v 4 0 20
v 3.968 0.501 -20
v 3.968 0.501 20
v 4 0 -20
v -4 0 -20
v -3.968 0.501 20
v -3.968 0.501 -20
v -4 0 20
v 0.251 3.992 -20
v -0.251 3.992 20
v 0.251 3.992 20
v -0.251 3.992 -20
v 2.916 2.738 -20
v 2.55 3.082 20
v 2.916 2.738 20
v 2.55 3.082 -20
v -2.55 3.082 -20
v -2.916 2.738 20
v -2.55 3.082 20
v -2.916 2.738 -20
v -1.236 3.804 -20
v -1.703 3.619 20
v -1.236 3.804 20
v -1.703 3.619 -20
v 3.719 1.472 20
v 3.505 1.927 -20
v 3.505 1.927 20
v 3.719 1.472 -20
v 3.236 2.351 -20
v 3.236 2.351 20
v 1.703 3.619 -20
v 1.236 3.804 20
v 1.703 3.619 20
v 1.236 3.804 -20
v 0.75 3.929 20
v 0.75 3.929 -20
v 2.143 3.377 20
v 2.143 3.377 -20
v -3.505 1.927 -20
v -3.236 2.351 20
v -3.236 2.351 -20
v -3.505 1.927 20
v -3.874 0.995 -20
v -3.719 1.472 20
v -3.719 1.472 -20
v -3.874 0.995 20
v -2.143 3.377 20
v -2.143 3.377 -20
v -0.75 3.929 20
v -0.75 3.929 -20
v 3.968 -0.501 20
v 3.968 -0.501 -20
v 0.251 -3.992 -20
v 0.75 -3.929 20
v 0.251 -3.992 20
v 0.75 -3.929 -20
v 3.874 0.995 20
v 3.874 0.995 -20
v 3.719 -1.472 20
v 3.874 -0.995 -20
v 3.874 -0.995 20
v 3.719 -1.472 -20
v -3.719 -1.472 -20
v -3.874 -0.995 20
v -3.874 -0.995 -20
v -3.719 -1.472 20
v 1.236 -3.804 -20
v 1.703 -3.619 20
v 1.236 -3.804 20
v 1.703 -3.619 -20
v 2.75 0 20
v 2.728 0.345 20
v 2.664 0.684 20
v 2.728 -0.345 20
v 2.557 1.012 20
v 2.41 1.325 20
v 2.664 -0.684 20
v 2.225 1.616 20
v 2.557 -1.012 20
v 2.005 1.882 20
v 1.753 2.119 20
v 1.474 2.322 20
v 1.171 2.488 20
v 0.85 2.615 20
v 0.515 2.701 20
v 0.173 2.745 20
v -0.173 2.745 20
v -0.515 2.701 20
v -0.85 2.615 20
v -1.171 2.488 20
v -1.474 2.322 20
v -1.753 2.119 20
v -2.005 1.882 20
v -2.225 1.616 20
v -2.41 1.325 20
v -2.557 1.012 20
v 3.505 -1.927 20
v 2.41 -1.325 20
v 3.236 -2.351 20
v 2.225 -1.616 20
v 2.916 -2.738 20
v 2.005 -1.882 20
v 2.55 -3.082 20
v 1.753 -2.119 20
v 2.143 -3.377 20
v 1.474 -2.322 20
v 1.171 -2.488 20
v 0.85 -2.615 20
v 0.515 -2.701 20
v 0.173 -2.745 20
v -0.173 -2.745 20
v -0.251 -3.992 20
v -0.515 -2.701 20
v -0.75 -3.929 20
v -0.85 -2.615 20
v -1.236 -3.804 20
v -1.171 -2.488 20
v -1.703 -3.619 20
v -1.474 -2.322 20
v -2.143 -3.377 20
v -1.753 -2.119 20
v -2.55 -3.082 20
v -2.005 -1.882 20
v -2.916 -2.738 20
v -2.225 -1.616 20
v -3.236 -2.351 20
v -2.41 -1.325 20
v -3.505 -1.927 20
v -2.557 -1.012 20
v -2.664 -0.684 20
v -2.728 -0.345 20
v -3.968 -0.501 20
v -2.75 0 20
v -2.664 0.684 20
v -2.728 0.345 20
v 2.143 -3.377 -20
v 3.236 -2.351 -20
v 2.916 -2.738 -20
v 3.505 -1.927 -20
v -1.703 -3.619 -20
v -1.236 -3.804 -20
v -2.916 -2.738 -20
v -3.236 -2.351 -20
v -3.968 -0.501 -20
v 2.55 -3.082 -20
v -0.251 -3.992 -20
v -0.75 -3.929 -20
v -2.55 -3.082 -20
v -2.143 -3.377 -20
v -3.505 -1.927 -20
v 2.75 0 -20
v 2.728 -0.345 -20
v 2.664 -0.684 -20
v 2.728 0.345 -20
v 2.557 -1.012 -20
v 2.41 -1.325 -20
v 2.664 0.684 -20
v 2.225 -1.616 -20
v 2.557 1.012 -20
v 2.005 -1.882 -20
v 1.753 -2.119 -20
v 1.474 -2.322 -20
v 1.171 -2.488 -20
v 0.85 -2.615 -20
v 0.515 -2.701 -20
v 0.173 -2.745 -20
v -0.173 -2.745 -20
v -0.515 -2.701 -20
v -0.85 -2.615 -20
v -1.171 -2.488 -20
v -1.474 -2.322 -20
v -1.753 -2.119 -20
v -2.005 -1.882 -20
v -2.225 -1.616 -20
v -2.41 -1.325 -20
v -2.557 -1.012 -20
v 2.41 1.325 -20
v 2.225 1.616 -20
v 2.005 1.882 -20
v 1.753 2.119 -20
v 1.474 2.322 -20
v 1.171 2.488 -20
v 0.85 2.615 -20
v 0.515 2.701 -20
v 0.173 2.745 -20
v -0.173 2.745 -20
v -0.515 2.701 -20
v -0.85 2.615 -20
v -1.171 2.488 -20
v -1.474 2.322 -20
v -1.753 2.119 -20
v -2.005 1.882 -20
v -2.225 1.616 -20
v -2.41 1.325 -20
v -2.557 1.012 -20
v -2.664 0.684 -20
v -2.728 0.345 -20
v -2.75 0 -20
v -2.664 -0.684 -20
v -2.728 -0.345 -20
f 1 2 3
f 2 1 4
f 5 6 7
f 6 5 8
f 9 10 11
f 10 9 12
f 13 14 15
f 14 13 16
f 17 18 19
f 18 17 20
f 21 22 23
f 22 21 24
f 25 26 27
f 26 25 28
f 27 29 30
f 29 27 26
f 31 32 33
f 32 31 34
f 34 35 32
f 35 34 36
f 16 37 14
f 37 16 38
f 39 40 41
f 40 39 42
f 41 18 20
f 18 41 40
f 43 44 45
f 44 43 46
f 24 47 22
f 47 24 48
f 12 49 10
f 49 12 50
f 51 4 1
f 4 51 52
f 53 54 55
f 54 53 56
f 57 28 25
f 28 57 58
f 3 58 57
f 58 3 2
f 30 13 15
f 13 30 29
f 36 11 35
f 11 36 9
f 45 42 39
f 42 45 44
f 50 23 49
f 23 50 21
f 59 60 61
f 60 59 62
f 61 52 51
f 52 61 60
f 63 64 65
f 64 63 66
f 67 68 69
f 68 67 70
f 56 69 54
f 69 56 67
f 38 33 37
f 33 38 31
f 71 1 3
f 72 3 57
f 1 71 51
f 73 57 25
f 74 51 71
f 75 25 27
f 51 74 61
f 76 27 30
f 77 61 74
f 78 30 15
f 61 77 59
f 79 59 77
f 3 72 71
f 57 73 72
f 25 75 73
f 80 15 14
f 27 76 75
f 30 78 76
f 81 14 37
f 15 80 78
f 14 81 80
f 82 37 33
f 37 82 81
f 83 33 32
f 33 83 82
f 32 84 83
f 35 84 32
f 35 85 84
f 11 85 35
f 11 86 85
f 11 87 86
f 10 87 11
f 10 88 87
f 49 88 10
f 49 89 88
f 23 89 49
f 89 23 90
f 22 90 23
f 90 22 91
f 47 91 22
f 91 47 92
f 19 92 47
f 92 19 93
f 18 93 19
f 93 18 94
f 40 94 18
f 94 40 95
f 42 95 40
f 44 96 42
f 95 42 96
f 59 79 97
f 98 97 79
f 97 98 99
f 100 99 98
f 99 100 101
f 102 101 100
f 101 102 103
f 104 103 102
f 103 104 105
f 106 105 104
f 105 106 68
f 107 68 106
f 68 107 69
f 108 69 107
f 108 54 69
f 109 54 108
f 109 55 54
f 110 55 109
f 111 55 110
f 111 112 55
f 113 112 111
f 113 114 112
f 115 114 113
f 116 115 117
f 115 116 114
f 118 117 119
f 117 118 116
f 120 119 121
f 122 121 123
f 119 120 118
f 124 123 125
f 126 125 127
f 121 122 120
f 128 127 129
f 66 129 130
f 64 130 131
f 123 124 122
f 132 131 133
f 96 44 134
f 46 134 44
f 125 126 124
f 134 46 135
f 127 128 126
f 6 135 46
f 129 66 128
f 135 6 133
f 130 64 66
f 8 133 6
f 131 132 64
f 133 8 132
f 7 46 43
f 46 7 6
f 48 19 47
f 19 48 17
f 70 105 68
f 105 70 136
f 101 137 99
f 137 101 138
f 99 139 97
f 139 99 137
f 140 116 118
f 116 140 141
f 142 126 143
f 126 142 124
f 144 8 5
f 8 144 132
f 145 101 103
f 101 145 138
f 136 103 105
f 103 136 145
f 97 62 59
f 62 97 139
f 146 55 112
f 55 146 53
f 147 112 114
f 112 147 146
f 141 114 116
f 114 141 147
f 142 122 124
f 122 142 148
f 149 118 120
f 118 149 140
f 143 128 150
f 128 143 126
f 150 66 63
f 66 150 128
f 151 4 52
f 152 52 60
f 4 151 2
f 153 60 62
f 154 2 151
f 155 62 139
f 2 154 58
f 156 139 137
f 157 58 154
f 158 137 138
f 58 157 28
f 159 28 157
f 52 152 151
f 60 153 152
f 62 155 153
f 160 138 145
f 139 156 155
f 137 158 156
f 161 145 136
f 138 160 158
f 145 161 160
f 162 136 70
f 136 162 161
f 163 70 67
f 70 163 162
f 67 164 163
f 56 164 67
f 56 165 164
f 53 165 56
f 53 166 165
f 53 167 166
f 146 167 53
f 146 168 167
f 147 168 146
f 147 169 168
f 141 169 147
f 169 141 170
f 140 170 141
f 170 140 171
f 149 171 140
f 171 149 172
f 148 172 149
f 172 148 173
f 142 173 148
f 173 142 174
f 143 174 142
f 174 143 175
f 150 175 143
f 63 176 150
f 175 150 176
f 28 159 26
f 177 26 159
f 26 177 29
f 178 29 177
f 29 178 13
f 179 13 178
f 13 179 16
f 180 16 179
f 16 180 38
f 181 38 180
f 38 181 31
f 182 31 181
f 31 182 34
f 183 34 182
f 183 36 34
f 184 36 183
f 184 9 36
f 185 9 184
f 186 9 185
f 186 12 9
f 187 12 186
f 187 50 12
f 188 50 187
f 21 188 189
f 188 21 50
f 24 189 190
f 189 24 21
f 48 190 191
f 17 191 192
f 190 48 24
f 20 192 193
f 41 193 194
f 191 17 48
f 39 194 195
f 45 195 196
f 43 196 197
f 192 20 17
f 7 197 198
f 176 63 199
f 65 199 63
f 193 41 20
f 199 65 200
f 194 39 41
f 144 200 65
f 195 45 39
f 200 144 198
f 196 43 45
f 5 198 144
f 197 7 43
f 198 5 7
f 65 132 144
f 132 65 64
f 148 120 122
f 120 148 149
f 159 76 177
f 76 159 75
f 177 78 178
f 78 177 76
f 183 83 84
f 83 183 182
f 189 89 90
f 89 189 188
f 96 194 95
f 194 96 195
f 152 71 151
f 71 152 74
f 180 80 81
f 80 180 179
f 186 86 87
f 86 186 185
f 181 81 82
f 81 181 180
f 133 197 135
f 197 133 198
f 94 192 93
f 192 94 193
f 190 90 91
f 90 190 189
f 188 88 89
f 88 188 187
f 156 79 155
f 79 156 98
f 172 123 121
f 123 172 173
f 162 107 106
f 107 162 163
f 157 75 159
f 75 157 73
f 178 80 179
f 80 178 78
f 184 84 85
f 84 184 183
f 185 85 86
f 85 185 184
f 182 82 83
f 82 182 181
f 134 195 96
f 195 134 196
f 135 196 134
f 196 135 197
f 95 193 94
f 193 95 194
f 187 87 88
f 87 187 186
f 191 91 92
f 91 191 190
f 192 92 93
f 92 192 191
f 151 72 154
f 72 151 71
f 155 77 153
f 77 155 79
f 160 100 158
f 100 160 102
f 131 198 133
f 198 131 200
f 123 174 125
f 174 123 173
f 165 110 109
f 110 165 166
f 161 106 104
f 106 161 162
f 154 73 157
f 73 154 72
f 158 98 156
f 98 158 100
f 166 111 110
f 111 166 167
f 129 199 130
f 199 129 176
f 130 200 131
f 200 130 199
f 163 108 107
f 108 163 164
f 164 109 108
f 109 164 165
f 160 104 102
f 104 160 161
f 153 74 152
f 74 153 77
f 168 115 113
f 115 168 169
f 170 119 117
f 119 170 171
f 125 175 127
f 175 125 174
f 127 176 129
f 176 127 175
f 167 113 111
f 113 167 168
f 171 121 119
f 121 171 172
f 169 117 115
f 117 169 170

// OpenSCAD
$fn = 50;


difference() {
	union() {
		translate(v = [0, 0, -20.0000000000]) {
			cylinder(h = 40, r = 4.0000000000);
		}
	}
	union() {
		translate(v = [0, 0, -100.0000000000]) {
			cylinder(h = 200, r = 2.7500000000);
		}
	}
}
